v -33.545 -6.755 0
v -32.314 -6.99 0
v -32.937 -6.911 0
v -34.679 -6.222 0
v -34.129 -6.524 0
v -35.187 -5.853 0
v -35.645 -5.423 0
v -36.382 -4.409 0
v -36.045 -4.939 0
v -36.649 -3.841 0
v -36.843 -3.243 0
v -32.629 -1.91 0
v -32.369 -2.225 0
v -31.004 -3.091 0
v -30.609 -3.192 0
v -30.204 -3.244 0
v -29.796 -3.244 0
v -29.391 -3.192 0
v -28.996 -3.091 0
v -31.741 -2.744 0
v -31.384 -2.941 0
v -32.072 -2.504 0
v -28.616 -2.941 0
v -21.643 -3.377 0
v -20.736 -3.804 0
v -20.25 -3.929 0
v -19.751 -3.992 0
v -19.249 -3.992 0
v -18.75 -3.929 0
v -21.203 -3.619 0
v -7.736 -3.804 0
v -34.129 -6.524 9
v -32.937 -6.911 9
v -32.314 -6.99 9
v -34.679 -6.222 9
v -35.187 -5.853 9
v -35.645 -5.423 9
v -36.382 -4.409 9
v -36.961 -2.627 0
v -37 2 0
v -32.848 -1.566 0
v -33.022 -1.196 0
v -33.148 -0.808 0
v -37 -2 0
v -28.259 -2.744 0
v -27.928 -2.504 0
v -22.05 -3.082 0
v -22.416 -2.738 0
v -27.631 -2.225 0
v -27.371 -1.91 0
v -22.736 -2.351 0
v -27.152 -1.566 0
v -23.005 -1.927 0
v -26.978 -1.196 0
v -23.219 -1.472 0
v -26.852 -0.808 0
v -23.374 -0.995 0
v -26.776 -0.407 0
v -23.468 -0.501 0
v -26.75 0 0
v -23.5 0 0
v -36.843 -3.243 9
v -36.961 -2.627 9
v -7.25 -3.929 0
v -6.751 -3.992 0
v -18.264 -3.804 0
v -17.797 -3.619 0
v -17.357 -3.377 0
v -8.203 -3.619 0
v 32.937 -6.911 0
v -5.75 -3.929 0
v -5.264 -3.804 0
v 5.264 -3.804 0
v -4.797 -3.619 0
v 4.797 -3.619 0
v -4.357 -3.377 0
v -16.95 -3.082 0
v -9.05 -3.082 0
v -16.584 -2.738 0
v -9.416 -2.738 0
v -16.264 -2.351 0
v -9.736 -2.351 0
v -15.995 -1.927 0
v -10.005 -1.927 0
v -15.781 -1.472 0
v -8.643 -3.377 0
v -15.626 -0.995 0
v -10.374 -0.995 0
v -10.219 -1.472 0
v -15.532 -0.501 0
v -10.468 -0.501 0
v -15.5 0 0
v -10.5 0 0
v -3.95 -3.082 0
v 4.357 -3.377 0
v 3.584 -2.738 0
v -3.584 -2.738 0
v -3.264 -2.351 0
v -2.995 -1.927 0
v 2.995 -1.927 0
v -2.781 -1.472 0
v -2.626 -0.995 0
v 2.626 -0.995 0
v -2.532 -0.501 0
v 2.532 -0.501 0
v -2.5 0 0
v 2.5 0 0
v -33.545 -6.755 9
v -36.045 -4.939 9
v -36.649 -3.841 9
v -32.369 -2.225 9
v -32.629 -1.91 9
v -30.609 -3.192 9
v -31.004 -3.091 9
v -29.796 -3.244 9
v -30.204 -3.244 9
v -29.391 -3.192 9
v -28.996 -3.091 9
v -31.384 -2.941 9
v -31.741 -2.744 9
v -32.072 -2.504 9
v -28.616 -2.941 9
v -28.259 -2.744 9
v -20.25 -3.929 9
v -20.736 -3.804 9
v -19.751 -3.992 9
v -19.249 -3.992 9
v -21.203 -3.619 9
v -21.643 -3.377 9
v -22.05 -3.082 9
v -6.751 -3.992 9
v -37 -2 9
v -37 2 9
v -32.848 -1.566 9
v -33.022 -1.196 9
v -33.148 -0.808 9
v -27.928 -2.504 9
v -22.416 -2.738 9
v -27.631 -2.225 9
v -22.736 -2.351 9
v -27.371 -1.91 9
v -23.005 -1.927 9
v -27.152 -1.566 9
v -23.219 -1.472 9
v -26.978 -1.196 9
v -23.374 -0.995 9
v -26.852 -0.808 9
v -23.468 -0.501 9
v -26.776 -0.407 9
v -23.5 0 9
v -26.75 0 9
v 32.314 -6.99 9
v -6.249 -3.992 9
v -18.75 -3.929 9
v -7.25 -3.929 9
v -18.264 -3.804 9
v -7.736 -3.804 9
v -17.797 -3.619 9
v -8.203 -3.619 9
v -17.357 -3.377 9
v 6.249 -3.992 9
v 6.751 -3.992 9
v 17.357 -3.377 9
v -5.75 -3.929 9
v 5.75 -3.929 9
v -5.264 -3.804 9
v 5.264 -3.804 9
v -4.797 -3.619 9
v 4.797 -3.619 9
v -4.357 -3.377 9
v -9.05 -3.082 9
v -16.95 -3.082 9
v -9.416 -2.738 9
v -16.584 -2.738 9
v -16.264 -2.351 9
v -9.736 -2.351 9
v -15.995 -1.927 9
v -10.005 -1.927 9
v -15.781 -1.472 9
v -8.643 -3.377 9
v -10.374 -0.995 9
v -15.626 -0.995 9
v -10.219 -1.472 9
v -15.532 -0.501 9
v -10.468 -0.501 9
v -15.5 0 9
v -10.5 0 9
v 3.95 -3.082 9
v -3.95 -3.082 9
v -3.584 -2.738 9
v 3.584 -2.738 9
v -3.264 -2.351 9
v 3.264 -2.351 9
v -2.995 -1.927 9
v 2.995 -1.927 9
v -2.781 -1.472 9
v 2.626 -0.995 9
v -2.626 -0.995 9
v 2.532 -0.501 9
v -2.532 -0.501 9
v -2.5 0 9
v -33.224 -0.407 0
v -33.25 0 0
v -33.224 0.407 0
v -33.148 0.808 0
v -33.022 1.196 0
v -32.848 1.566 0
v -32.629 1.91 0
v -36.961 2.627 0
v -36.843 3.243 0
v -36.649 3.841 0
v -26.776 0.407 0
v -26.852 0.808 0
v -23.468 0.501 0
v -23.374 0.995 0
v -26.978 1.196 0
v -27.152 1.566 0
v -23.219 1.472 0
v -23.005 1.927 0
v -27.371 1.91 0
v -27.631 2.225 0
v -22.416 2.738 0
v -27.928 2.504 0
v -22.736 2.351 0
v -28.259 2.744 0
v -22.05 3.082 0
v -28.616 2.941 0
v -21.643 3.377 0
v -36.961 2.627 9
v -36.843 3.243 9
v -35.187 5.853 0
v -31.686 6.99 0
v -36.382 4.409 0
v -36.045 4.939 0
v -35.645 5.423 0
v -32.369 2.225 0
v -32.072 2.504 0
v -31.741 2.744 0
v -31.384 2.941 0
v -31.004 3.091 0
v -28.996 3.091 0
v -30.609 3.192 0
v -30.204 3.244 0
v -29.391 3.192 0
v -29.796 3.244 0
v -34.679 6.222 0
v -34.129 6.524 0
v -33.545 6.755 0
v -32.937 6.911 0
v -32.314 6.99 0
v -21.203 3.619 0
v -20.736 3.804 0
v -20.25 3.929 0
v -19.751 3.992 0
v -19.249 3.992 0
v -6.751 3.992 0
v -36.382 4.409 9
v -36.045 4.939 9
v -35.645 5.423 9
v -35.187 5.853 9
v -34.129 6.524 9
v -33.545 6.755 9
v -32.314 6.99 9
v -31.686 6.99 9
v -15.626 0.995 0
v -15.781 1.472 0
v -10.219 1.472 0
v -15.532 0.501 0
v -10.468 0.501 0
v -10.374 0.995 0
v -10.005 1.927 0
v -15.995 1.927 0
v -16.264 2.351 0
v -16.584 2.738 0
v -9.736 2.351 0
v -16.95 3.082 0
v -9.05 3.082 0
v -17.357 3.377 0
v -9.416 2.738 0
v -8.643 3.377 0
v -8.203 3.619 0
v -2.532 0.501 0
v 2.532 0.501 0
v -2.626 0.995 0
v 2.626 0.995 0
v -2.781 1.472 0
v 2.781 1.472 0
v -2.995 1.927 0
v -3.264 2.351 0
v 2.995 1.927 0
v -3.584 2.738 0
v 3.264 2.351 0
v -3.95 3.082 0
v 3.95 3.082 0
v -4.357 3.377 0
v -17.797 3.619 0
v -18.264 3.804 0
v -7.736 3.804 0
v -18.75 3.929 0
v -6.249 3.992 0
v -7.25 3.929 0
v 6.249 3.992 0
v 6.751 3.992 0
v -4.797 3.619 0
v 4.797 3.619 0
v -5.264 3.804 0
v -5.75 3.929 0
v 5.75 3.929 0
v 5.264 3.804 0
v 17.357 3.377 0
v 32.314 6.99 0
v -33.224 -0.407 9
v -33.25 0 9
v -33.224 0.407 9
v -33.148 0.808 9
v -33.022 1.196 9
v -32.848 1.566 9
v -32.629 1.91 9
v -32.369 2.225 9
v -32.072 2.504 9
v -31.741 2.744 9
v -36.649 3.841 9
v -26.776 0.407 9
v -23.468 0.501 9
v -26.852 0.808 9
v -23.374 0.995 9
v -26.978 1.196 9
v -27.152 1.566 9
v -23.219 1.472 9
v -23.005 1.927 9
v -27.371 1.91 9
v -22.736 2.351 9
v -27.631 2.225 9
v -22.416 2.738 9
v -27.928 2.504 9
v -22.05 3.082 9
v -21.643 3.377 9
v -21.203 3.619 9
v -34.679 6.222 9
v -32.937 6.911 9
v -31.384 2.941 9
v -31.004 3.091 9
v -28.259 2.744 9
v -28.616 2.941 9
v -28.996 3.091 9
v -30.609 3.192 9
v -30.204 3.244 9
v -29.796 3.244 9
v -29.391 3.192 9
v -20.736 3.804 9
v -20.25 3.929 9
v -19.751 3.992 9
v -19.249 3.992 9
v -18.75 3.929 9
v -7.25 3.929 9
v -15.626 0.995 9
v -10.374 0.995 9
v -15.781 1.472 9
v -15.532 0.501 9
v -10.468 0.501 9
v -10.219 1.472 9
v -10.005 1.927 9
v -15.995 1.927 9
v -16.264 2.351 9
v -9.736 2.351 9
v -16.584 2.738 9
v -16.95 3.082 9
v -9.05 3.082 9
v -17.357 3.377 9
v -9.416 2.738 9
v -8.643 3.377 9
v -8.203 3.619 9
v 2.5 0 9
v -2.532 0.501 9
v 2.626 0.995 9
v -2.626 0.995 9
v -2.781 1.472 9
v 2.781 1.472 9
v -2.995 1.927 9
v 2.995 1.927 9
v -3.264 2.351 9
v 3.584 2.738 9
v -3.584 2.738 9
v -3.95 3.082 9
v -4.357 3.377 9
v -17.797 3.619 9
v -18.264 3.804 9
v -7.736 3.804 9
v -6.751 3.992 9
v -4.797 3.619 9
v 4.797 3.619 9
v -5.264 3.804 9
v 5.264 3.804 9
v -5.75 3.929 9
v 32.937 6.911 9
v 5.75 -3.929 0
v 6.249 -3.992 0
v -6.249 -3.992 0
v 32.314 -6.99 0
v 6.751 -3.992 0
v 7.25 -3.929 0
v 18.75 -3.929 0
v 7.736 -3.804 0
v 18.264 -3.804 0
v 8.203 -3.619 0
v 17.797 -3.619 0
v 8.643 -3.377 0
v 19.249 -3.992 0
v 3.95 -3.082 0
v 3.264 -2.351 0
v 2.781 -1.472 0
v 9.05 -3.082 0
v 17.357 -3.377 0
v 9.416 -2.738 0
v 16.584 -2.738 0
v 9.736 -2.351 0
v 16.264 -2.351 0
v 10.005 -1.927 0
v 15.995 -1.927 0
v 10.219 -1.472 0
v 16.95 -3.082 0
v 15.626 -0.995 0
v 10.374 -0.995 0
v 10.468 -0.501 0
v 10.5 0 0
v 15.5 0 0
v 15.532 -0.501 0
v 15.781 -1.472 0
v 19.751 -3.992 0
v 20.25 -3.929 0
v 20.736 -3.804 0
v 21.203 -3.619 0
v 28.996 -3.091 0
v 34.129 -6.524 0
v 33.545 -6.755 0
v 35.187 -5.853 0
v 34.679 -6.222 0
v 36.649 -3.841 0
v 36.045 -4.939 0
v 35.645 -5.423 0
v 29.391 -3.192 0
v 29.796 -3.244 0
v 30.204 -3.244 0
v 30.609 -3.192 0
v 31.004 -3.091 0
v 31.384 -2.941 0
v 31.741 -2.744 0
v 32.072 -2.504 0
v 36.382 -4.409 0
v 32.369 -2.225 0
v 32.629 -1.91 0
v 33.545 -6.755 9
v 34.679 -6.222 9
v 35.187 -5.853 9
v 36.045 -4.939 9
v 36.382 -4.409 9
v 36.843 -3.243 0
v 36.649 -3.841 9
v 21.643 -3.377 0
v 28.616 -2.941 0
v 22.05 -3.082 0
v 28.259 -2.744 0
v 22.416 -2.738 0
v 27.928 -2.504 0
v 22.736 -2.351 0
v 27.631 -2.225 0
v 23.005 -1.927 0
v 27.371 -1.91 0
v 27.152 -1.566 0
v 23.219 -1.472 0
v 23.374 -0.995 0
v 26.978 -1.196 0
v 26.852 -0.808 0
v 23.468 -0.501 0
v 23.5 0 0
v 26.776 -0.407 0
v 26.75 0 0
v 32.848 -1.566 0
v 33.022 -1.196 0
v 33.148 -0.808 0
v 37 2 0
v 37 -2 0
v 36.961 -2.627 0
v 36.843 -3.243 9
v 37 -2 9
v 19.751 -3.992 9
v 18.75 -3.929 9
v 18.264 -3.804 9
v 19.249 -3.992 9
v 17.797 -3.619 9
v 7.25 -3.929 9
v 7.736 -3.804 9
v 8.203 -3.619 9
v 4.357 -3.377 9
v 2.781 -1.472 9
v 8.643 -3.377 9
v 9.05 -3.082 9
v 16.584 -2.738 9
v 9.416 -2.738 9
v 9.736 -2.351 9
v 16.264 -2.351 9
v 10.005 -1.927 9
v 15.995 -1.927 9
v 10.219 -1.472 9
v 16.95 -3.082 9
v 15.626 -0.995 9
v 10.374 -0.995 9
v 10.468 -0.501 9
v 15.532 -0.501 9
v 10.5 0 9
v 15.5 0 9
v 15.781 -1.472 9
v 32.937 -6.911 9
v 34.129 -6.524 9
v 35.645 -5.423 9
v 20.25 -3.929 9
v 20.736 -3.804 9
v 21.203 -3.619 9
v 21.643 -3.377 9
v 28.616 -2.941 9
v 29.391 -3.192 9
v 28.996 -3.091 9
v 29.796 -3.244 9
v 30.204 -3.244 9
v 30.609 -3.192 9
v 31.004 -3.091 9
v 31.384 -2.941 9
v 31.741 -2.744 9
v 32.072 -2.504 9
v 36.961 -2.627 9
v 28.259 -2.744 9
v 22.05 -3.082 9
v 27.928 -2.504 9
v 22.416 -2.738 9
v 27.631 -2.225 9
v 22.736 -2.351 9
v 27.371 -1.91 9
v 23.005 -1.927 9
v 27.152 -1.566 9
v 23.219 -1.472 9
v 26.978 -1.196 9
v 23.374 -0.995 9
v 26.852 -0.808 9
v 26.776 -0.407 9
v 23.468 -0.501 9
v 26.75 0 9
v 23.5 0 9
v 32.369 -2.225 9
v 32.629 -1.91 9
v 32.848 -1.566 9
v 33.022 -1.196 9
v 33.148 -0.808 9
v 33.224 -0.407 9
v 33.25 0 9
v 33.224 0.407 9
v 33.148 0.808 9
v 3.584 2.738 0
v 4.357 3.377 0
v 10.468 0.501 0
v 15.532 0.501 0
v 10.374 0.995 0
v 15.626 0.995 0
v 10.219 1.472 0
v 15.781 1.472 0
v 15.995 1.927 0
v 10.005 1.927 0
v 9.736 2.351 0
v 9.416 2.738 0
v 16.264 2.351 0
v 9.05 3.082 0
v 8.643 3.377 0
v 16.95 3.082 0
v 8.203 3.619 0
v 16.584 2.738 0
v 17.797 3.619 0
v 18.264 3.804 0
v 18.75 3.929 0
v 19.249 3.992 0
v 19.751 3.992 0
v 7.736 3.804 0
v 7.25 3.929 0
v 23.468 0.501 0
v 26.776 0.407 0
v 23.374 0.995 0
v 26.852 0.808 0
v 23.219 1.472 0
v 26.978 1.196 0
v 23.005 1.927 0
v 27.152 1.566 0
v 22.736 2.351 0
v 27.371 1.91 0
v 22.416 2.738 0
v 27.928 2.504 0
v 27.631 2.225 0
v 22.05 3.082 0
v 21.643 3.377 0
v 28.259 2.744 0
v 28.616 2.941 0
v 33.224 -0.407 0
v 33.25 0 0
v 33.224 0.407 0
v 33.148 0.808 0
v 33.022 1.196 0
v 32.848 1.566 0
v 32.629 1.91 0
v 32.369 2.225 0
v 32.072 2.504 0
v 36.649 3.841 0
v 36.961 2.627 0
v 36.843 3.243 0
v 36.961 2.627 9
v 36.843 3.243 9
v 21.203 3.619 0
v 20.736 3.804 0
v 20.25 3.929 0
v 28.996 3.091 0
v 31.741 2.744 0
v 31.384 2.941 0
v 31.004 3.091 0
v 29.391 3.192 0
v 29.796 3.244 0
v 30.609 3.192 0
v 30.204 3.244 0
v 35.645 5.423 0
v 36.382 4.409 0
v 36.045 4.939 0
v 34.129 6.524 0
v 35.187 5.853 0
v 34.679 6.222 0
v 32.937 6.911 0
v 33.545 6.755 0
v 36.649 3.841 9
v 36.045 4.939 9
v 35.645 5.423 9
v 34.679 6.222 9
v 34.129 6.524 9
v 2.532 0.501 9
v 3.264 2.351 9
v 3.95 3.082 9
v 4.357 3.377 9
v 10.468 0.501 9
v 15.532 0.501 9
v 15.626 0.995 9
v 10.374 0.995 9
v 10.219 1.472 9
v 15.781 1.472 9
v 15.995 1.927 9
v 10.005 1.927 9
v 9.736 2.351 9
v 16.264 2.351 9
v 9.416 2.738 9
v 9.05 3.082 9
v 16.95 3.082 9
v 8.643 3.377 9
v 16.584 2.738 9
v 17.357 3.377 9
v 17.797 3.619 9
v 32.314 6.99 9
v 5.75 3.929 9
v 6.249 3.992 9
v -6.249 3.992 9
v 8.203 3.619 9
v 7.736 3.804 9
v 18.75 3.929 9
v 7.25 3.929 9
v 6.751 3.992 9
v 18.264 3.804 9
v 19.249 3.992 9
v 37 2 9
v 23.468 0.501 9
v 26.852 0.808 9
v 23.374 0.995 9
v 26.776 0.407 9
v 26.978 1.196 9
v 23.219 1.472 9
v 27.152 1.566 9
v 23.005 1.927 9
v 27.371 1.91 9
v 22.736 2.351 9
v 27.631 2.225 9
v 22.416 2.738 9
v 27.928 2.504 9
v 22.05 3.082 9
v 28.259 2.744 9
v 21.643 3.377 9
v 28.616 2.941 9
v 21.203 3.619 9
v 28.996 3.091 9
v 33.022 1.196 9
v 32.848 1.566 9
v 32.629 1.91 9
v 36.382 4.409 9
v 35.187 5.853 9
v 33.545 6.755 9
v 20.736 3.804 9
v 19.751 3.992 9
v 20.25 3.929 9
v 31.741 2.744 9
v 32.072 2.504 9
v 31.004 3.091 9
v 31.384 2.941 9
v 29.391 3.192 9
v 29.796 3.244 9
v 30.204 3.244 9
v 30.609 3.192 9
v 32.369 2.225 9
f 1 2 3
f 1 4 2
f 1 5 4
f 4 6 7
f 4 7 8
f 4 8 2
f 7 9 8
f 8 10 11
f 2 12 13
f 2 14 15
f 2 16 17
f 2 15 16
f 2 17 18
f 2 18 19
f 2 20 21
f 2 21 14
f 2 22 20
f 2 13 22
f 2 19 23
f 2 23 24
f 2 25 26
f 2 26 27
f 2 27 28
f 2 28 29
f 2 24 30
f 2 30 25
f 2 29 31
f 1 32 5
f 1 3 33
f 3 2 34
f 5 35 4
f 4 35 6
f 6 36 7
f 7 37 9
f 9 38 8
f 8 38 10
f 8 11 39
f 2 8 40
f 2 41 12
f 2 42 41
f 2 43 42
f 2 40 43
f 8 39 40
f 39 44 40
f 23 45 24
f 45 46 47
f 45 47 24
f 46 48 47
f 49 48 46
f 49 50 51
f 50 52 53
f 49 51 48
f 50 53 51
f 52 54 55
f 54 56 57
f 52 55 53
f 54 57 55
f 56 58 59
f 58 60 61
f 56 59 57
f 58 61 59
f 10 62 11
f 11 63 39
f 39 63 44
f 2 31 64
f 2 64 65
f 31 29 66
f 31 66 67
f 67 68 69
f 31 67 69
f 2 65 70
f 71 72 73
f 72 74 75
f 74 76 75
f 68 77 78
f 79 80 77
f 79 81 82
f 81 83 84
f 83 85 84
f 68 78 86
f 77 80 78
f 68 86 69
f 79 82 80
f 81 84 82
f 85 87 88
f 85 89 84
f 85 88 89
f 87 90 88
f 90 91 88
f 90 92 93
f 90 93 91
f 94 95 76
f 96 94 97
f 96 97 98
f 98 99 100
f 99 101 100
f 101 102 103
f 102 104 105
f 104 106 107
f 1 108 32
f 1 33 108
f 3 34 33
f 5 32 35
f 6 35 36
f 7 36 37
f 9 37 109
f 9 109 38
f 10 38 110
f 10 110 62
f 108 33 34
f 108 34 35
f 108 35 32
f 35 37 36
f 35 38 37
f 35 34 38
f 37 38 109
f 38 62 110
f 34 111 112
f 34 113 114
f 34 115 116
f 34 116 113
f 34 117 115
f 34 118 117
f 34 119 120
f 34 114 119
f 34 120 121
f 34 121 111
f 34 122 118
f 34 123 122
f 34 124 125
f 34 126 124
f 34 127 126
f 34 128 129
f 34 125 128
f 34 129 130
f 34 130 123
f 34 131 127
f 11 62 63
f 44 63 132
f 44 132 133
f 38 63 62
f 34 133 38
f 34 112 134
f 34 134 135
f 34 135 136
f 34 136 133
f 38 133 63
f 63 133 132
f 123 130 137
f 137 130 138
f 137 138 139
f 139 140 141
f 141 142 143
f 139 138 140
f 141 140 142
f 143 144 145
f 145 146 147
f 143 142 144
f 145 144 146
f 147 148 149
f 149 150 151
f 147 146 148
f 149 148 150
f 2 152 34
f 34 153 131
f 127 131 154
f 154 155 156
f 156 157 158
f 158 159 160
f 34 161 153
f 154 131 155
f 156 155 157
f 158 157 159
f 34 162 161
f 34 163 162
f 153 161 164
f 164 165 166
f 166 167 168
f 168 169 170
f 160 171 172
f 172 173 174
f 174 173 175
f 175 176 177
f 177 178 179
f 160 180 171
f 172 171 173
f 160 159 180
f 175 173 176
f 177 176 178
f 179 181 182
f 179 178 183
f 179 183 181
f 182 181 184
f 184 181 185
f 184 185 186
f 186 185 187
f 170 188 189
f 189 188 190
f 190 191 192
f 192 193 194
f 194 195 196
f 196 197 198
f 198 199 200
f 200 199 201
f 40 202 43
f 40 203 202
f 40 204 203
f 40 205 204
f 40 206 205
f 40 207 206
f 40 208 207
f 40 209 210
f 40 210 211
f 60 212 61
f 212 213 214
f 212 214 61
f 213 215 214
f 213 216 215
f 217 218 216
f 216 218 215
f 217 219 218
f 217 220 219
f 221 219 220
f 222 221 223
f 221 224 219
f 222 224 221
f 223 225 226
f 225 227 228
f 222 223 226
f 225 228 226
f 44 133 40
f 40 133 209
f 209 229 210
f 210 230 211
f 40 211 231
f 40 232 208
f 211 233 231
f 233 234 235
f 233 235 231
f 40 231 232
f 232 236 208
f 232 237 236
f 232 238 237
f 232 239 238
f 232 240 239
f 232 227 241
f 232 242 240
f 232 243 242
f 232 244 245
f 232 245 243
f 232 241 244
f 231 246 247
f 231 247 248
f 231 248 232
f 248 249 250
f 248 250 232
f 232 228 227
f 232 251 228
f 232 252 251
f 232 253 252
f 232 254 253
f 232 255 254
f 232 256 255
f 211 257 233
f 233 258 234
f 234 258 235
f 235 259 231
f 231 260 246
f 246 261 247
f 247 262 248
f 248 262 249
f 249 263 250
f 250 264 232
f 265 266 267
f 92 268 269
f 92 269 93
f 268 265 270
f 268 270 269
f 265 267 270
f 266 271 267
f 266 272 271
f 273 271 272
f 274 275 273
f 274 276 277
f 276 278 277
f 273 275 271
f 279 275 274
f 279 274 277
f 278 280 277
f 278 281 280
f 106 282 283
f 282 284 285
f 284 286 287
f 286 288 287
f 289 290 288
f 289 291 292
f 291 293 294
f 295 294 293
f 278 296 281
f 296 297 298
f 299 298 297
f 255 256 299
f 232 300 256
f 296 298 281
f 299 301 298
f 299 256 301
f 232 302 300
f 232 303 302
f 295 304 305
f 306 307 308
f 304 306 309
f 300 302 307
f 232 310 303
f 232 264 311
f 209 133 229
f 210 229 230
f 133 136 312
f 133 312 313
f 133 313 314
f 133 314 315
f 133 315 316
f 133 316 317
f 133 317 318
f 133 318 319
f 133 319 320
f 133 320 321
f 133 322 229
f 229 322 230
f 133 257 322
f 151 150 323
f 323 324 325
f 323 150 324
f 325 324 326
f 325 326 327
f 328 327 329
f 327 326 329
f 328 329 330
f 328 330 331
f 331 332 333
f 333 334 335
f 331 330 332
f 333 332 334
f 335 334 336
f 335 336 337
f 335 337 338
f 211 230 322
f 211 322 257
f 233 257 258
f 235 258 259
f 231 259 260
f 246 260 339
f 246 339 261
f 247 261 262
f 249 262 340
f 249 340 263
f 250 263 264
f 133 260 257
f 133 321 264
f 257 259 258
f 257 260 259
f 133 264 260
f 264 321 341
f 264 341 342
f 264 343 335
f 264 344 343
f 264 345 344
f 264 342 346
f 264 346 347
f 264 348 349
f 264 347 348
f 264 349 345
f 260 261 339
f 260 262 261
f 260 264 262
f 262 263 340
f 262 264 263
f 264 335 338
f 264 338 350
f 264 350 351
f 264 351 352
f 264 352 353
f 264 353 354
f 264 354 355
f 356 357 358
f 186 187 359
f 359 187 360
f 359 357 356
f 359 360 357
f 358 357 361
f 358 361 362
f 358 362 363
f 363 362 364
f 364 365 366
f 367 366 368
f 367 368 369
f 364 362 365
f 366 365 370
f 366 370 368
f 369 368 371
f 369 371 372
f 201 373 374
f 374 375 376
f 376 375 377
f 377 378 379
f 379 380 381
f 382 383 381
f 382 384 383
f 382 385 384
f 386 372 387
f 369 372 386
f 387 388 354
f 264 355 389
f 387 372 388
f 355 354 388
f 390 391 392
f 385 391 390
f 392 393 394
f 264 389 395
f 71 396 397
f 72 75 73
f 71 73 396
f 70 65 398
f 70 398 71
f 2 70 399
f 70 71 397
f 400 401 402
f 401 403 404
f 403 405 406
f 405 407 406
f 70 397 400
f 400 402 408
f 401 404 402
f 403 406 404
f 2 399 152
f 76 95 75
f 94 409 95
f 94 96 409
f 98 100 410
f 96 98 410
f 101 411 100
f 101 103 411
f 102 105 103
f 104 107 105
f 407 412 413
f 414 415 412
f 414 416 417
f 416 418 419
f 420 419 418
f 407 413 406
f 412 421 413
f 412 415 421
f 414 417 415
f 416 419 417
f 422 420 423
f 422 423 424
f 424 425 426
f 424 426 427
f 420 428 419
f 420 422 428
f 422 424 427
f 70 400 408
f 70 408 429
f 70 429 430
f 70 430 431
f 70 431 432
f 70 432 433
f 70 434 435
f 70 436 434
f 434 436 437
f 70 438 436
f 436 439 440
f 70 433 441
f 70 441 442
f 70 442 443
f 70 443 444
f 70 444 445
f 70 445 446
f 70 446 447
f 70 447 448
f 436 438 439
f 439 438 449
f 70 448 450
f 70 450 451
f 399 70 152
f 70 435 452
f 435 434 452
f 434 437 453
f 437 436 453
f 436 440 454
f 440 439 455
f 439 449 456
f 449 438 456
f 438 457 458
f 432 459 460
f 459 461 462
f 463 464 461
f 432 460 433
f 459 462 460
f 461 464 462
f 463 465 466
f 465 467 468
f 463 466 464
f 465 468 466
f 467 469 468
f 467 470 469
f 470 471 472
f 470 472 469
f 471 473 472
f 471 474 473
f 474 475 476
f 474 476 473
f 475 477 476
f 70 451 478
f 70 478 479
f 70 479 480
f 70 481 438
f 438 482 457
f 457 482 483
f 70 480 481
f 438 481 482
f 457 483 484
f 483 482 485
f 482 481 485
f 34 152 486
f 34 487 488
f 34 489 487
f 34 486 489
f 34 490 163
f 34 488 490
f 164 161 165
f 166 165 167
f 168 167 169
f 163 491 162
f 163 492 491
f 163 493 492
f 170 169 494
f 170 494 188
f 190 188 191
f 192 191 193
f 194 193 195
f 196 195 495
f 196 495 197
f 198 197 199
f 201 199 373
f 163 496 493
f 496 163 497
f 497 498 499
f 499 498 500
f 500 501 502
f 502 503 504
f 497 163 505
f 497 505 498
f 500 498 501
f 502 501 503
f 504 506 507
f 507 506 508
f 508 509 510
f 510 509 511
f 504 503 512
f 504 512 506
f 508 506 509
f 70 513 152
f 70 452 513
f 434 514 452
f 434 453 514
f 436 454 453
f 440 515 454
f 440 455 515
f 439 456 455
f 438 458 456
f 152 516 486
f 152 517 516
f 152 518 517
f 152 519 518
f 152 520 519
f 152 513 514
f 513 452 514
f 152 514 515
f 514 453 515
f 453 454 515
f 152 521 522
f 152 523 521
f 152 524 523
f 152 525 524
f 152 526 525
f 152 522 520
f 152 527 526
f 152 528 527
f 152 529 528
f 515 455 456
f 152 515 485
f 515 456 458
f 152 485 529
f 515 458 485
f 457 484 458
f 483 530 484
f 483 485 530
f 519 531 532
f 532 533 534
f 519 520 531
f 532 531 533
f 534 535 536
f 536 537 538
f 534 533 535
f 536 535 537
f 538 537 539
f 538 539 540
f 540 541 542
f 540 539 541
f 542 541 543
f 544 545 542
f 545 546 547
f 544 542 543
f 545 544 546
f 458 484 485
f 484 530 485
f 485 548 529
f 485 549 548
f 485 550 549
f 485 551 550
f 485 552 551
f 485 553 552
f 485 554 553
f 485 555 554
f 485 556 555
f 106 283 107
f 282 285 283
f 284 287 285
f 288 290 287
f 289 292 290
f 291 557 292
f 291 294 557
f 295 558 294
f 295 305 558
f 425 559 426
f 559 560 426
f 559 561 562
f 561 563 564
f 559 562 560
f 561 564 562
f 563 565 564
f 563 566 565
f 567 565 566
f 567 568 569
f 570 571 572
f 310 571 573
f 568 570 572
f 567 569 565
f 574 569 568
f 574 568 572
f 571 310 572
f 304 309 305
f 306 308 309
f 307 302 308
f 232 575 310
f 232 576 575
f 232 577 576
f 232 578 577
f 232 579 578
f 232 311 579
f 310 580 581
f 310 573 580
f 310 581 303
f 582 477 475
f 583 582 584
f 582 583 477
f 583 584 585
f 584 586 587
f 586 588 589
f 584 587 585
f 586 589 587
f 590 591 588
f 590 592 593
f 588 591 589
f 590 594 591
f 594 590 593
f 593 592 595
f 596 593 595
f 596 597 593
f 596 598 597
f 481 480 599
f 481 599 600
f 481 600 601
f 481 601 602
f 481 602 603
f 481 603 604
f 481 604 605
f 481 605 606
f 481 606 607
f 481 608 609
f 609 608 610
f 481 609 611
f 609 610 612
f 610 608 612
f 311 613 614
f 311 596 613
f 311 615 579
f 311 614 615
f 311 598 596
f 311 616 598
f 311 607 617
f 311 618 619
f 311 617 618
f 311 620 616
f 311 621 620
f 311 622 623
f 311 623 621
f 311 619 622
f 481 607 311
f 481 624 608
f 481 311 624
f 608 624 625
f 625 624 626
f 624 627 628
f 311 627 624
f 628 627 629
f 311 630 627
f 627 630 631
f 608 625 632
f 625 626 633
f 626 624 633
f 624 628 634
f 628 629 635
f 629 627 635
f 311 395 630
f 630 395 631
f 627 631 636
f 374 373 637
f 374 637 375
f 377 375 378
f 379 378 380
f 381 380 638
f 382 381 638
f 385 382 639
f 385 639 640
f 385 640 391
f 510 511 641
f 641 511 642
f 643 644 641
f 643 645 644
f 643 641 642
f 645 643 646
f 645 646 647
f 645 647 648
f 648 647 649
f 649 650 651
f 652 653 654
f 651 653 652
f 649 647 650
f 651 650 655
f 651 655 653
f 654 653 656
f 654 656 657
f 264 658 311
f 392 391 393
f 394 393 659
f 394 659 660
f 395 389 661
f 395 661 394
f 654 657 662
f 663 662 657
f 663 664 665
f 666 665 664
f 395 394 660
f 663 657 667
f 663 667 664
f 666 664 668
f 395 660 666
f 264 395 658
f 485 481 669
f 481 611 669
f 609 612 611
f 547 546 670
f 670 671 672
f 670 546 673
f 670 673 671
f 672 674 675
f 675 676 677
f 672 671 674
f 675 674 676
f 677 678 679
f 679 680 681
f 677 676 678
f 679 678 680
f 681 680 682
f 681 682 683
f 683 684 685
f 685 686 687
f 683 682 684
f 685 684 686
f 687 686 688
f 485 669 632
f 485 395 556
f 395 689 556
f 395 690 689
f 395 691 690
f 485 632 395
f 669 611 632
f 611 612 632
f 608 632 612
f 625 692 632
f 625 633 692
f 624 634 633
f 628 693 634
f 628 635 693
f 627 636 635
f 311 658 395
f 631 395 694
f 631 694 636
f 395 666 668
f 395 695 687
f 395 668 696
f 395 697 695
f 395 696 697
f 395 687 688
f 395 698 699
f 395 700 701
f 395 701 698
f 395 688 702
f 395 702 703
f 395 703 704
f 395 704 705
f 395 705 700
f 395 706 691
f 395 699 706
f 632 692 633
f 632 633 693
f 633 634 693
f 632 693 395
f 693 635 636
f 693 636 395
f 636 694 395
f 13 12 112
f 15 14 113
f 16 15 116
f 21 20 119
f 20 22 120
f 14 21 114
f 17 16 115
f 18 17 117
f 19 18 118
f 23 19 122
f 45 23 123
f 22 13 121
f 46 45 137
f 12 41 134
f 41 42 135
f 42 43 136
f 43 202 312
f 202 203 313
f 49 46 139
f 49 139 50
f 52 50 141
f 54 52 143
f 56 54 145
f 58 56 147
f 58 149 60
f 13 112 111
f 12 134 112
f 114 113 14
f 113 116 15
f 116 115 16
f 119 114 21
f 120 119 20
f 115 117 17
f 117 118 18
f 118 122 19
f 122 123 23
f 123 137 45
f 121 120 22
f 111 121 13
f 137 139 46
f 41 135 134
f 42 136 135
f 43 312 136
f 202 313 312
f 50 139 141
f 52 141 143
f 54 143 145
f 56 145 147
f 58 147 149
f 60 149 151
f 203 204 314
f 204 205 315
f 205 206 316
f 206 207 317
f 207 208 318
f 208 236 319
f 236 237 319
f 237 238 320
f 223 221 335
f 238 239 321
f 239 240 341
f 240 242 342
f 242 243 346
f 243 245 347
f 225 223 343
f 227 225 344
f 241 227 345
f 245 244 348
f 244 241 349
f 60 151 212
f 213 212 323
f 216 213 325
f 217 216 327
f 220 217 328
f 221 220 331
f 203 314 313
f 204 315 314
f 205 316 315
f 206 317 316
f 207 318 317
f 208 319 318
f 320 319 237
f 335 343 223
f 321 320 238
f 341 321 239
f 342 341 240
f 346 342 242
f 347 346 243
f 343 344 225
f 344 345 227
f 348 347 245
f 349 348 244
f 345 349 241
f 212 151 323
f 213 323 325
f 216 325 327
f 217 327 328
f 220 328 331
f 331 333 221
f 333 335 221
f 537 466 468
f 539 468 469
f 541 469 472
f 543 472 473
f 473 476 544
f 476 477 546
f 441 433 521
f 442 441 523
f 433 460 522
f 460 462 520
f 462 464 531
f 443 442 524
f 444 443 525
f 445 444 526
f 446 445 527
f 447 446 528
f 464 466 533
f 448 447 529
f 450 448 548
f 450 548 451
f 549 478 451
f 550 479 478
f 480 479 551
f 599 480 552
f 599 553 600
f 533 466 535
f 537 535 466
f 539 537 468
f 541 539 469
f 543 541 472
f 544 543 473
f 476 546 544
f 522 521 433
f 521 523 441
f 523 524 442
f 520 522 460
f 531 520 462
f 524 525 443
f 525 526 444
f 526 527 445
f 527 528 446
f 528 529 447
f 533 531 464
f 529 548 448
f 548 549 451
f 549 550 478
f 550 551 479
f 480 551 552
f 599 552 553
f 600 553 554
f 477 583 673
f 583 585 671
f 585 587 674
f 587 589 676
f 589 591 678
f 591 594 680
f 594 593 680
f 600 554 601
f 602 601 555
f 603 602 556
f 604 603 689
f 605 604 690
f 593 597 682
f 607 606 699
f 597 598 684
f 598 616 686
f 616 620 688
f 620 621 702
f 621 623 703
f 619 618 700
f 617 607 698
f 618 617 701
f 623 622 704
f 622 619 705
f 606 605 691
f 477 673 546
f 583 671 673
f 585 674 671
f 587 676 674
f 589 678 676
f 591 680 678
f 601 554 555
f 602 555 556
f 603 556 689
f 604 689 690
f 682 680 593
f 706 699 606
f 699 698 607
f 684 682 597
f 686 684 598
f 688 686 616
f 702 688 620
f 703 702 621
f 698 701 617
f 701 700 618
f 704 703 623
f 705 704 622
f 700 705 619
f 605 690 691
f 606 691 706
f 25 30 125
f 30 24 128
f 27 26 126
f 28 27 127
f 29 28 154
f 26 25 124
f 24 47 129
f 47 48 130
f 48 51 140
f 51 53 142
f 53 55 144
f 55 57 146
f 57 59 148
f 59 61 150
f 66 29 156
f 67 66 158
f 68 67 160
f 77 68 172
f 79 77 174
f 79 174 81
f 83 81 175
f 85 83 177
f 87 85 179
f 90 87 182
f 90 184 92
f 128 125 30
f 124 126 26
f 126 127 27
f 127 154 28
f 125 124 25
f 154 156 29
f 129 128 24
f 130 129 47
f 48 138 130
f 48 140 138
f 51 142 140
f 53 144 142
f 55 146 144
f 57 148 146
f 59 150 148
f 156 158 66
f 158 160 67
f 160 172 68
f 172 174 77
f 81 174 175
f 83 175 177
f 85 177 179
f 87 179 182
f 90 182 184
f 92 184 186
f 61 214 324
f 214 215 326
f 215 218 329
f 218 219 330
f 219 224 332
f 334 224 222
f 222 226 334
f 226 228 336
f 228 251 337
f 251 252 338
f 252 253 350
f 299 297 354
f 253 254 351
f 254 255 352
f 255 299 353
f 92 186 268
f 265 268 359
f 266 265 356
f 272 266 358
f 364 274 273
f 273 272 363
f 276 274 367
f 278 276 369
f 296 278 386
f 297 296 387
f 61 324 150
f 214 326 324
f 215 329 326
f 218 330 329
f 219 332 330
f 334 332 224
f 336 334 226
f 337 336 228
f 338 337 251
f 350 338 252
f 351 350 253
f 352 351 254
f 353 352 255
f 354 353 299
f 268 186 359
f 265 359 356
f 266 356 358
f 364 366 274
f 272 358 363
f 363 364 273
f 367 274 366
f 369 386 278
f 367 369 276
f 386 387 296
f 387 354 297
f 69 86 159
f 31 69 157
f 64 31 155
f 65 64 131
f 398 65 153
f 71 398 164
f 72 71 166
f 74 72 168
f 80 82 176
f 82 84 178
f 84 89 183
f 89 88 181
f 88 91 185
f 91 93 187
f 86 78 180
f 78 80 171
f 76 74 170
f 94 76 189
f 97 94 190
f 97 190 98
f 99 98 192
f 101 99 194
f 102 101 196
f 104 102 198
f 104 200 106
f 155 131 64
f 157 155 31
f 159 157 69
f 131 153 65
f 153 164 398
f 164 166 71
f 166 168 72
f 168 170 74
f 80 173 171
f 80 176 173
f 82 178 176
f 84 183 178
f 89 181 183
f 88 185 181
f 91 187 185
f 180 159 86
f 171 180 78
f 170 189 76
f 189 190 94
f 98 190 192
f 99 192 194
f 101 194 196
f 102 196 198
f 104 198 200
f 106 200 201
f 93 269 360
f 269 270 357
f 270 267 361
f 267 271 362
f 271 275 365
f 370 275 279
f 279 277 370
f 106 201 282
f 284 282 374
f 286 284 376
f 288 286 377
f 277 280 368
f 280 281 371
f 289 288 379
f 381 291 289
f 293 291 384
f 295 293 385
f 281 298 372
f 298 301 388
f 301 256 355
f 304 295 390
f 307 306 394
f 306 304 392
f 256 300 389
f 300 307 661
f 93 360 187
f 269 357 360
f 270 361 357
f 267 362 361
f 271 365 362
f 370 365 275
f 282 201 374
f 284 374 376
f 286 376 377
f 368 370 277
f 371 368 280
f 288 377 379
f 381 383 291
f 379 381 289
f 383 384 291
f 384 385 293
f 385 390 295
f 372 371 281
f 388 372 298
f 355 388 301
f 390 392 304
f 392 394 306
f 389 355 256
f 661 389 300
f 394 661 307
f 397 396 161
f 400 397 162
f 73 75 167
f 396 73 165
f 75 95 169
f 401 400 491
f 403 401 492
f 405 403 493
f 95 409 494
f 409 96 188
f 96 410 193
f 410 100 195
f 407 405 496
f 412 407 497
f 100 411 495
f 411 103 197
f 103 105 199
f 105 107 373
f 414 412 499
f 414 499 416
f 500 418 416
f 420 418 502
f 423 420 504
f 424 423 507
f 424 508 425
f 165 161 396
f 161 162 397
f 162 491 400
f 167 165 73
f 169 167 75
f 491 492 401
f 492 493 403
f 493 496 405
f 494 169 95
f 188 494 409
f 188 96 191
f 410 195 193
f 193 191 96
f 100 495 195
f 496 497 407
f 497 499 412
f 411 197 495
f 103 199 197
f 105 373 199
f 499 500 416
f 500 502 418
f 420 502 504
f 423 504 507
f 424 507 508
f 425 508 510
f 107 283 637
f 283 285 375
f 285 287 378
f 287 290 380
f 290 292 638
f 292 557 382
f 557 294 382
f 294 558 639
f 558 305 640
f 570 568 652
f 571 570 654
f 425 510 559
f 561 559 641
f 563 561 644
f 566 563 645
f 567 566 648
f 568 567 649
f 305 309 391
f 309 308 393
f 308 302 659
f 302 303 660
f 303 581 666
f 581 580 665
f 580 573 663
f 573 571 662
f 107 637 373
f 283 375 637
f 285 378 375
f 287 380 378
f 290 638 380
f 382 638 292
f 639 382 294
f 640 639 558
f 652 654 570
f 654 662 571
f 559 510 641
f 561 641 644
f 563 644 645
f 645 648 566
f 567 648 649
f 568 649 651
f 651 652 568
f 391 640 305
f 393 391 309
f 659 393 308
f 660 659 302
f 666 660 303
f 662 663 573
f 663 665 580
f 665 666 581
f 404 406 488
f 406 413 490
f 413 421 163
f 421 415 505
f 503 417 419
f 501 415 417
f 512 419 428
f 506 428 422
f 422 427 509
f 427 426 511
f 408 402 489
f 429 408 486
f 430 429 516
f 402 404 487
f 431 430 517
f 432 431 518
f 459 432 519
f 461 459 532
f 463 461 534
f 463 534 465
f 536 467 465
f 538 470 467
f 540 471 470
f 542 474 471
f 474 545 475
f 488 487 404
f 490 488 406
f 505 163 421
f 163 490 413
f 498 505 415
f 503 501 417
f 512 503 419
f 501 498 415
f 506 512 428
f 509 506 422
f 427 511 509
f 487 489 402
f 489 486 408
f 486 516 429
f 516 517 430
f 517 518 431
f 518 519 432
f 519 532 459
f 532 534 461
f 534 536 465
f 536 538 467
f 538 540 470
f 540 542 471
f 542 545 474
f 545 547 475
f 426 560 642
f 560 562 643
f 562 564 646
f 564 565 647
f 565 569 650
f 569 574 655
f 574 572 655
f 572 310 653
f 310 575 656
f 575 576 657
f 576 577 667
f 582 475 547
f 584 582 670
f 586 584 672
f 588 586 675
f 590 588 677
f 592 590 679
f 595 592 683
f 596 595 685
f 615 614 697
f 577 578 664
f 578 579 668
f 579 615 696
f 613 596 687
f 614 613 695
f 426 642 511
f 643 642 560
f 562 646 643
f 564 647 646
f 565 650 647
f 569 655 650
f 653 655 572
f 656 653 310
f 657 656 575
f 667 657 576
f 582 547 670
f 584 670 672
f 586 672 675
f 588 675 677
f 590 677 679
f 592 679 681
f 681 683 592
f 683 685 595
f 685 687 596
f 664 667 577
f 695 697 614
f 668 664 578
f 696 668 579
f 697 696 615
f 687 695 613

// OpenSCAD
$fn = 50;

difference() {
	union() {
		hull() {
			translate(v = [-32.0, 2.0, 0]) {
				cylinder(h = 9, r = 5);
			}
			translate(v = [32.0, 2.0, 0]) {
				cylinder(h = 9, r = 5);
			}
			translate(v = [-32.0, -2.0, 0]) {
				cylinder(h = 9, r = 5);
			}
			translate(v = [32.0, -2.0, 0]) {
				cylinder(h = 9, r = 5);
			}
		}
	}
	union() {
		translate(v = [-30.0, 0.0, 0]) {
			cylinder(h = 9, r = 3.25);
		}
		translate(v = [30.0, 0.0, 0]) {
			cylinder(h = 9, r = 3.25);
		}
		translate(v = [-19.5, 0, 0.0]) {
			cylinder(h = 9, r = 4.0);
		}
		translate(v = [-6.5, 0, 0.0]) {
			cylinder(h = 9, r = 4.0);
		}
		translate(v = [6.5, 0, 0.0]) {
			cylinder(h = 9, r = 4.0);
		}
		translate(v = [19.5, 0, 0.0]) {
			cylinder(h = 9, r = 4.0);
		}
	}
}
